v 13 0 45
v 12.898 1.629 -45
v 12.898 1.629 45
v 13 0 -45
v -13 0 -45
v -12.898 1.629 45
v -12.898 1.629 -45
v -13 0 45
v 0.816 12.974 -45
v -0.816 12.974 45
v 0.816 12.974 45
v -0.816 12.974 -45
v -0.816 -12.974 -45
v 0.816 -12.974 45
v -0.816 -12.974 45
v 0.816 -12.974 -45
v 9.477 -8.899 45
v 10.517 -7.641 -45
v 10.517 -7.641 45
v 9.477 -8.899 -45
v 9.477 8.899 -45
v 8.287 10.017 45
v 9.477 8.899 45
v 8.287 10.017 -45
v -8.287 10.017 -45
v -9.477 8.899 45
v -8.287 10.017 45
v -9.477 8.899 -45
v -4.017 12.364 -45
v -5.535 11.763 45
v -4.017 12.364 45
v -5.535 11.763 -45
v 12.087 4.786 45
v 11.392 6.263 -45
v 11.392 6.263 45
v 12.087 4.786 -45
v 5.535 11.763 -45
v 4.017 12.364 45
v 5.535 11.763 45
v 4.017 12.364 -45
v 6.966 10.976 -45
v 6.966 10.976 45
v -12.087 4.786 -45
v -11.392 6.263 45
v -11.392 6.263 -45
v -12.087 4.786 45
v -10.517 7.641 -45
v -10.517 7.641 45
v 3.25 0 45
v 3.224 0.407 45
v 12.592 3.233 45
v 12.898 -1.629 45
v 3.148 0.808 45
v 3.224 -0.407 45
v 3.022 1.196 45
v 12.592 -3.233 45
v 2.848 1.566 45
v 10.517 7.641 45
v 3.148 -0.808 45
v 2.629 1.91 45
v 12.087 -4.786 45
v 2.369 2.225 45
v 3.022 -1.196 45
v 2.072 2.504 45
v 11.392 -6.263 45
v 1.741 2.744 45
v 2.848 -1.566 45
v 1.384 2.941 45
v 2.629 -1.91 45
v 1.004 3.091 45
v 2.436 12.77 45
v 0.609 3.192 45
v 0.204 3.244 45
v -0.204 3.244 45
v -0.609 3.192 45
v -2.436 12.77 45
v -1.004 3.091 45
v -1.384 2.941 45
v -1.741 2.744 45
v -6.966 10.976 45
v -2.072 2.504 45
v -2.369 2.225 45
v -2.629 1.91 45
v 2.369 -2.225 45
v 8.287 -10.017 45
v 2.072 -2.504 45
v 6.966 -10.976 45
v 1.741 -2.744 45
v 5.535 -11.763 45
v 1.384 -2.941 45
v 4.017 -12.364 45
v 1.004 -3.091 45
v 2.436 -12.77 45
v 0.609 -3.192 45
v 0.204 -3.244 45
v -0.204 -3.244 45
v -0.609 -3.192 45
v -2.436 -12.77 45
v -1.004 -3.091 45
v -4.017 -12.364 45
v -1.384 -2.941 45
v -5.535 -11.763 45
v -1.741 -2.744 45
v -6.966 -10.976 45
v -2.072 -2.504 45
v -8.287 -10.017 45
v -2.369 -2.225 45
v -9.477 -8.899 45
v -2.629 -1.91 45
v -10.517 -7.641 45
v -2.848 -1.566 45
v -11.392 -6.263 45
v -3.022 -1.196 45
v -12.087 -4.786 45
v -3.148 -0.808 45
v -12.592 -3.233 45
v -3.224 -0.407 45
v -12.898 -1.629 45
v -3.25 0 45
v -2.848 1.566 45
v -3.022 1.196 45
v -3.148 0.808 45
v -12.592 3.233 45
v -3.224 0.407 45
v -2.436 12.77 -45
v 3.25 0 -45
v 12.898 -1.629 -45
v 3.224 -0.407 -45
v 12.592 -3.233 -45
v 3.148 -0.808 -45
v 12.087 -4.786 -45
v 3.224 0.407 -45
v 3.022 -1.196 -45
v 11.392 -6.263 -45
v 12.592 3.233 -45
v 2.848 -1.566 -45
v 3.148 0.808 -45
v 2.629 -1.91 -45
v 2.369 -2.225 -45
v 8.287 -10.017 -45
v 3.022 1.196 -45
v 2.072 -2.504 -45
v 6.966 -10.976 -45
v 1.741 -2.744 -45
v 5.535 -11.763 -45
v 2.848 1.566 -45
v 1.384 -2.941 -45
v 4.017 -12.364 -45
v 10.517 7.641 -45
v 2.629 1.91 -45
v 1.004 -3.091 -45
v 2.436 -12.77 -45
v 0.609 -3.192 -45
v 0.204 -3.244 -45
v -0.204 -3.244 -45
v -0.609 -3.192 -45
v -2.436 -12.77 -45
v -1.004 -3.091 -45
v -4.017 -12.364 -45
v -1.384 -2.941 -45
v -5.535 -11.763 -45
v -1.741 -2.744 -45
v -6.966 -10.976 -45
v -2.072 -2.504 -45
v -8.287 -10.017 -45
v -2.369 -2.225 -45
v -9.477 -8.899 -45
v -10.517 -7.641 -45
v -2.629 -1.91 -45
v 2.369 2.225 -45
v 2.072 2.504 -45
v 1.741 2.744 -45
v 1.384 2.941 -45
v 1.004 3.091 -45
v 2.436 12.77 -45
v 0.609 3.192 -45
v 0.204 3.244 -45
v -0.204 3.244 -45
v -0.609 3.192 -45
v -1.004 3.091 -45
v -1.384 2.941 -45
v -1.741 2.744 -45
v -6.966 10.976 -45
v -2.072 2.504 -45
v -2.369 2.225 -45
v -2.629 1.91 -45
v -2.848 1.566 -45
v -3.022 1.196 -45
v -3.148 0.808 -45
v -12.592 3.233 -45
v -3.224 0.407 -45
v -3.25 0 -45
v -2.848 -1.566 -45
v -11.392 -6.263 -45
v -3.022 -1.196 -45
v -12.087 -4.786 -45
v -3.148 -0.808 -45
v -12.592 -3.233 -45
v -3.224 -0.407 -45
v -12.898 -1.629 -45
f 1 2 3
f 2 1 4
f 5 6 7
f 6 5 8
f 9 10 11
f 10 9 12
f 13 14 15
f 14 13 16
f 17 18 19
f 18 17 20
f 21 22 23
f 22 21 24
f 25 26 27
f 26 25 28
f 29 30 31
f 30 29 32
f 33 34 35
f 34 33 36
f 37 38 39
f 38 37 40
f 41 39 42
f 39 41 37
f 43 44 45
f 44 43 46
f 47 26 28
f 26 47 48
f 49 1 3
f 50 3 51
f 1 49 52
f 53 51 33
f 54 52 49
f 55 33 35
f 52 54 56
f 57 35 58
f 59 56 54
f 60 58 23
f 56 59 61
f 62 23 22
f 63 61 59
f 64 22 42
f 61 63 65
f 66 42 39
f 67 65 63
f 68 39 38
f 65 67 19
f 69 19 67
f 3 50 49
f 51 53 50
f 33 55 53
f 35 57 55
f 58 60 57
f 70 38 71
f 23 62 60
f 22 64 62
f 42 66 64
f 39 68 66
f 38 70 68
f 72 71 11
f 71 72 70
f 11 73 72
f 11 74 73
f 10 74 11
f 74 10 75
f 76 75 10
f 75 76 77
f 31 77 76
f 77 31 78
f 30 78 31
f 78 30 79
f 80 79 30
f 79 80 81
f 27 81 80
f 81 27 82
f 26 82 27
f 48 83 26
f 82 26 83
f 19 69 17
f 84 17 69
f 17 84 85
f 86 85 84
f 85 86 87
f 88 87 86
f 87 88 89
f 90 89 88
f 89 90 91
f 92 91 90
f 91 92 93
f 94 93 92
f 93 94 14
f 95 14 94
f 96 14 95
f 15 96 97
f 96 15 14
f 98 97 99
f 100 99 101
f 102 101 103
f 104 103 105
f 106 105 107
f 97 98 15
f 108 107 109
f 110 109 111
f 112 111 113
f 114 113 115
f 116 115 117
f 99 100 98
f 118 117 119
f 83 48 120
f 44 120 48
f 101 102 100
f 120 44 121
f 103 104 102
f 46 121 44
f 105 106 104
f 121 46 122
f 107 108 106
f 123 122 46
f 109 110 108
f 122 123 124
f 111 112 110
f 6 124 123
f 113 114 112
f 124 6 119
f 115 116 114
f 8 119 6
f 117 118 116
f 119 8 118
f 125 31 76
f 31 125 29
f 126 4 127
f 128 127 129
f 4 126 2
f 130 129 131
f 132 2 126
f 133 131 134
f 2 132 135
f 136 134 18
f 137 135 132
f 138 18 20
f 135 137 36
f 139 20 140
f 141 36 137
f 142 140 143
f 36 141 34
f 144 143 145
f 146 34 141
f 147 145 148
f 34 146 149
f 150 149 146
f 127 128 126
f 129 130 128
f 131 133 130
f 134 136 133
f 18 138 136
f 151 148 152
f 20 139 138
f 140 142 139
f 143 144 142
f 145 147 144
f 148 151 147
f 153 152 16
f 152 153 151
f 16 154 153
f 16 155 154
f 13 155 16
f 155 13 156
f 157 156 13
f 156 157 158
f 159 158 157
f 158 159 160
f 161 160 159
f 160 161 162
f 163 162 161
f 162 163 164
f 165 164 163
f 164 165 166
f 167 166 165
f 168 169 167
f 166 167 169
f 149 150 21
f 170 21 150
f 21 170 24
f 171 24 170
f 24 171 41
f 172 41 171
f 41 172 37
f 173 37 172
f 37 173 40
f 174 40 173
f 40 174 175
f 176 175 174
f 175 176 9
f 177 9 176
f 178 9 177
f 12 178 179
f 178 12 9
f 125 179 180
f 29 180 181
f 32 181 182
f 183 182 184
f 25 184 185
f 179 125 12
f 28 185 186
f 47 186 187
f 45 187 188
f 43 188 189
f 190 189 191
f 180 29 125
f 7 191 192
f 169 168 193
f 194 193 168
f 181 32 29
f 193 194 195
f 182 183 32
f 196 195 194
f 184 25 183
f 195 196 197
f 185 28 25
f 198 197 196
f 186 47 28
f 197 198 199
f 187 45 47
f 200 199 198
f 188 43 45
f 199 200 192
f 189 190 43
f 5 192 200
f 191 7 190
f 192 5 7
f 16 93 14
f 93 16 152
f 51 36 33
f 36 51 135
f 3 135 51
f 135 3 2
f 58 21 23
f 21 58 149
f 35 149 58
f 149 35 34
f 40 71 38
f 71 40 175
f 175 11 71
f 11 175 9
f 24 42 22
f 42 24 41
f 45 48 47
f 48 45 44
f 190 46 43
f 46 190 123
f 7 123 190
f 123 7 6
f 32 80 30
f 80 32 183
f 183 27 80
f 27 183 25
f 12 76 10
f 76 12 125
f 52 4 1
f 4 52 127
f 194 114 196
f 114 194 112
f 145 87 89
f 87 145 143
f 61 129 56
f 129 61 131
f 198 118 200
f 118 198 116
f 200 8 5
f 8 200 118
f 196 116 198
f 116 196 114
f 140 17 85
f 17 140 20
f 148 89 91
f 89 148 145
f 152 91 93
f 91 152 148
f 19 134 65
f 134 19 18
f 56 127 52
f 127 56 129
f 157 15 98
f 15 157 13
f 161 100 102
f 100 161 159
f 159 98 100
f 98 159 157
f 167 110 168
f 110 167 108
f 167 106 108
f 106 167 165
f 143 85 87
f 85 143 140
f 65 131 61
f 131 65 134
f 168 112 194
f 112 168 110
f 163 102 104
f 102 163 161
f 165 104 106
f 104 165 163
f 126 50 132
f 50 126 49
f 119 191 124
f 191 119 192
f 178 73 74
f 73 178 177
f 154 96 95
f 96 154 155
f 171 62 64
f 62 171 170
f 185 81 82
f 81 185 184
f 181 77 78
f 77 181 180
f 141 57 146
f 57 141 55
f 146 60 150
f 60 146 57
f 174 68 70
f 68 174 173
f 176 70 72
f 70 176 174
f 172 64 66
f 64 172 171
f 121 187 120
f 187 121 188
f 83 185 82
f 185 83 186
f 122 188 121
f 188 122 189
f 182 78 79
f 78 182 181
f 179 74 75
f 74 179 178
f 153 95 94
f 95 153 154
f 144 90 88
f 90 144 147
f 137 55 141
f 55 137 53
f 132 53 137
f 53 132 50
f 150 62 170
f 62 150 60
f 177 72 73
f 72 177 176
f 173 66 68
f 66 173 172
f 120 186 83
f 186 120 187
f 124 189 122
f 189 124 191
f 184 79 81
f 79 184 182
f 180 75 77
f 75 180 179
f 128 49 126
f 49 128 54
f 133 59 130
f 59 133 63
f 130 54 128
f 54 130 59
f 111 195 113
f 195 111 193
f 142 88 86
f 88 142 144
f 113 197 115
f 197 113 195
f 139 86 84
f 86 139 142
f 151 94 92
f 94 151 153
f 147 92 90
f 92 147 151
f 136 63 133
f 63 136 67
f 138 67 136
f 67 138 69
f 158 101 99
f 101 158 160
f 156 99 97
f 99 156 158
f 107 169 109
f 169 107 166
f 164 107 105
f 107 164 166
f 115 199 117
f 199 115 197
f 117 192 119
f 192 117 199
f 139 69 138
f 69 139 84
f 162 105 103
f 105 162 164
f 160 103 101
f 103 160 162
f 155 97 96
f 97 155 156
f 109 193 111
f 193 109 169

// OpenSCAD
$fn = 50;


difference() {
	union() {
		translate(v = [0, 0, -45.0000000000]) {
			cylinder(h = 90, r = 13.0000000000);
		}
	}
	union() {
		translate(v = [0, 0, -100.0000000000]) {
			cylinder(h = 200, r = 3.2500000000);
		}
	}
}
